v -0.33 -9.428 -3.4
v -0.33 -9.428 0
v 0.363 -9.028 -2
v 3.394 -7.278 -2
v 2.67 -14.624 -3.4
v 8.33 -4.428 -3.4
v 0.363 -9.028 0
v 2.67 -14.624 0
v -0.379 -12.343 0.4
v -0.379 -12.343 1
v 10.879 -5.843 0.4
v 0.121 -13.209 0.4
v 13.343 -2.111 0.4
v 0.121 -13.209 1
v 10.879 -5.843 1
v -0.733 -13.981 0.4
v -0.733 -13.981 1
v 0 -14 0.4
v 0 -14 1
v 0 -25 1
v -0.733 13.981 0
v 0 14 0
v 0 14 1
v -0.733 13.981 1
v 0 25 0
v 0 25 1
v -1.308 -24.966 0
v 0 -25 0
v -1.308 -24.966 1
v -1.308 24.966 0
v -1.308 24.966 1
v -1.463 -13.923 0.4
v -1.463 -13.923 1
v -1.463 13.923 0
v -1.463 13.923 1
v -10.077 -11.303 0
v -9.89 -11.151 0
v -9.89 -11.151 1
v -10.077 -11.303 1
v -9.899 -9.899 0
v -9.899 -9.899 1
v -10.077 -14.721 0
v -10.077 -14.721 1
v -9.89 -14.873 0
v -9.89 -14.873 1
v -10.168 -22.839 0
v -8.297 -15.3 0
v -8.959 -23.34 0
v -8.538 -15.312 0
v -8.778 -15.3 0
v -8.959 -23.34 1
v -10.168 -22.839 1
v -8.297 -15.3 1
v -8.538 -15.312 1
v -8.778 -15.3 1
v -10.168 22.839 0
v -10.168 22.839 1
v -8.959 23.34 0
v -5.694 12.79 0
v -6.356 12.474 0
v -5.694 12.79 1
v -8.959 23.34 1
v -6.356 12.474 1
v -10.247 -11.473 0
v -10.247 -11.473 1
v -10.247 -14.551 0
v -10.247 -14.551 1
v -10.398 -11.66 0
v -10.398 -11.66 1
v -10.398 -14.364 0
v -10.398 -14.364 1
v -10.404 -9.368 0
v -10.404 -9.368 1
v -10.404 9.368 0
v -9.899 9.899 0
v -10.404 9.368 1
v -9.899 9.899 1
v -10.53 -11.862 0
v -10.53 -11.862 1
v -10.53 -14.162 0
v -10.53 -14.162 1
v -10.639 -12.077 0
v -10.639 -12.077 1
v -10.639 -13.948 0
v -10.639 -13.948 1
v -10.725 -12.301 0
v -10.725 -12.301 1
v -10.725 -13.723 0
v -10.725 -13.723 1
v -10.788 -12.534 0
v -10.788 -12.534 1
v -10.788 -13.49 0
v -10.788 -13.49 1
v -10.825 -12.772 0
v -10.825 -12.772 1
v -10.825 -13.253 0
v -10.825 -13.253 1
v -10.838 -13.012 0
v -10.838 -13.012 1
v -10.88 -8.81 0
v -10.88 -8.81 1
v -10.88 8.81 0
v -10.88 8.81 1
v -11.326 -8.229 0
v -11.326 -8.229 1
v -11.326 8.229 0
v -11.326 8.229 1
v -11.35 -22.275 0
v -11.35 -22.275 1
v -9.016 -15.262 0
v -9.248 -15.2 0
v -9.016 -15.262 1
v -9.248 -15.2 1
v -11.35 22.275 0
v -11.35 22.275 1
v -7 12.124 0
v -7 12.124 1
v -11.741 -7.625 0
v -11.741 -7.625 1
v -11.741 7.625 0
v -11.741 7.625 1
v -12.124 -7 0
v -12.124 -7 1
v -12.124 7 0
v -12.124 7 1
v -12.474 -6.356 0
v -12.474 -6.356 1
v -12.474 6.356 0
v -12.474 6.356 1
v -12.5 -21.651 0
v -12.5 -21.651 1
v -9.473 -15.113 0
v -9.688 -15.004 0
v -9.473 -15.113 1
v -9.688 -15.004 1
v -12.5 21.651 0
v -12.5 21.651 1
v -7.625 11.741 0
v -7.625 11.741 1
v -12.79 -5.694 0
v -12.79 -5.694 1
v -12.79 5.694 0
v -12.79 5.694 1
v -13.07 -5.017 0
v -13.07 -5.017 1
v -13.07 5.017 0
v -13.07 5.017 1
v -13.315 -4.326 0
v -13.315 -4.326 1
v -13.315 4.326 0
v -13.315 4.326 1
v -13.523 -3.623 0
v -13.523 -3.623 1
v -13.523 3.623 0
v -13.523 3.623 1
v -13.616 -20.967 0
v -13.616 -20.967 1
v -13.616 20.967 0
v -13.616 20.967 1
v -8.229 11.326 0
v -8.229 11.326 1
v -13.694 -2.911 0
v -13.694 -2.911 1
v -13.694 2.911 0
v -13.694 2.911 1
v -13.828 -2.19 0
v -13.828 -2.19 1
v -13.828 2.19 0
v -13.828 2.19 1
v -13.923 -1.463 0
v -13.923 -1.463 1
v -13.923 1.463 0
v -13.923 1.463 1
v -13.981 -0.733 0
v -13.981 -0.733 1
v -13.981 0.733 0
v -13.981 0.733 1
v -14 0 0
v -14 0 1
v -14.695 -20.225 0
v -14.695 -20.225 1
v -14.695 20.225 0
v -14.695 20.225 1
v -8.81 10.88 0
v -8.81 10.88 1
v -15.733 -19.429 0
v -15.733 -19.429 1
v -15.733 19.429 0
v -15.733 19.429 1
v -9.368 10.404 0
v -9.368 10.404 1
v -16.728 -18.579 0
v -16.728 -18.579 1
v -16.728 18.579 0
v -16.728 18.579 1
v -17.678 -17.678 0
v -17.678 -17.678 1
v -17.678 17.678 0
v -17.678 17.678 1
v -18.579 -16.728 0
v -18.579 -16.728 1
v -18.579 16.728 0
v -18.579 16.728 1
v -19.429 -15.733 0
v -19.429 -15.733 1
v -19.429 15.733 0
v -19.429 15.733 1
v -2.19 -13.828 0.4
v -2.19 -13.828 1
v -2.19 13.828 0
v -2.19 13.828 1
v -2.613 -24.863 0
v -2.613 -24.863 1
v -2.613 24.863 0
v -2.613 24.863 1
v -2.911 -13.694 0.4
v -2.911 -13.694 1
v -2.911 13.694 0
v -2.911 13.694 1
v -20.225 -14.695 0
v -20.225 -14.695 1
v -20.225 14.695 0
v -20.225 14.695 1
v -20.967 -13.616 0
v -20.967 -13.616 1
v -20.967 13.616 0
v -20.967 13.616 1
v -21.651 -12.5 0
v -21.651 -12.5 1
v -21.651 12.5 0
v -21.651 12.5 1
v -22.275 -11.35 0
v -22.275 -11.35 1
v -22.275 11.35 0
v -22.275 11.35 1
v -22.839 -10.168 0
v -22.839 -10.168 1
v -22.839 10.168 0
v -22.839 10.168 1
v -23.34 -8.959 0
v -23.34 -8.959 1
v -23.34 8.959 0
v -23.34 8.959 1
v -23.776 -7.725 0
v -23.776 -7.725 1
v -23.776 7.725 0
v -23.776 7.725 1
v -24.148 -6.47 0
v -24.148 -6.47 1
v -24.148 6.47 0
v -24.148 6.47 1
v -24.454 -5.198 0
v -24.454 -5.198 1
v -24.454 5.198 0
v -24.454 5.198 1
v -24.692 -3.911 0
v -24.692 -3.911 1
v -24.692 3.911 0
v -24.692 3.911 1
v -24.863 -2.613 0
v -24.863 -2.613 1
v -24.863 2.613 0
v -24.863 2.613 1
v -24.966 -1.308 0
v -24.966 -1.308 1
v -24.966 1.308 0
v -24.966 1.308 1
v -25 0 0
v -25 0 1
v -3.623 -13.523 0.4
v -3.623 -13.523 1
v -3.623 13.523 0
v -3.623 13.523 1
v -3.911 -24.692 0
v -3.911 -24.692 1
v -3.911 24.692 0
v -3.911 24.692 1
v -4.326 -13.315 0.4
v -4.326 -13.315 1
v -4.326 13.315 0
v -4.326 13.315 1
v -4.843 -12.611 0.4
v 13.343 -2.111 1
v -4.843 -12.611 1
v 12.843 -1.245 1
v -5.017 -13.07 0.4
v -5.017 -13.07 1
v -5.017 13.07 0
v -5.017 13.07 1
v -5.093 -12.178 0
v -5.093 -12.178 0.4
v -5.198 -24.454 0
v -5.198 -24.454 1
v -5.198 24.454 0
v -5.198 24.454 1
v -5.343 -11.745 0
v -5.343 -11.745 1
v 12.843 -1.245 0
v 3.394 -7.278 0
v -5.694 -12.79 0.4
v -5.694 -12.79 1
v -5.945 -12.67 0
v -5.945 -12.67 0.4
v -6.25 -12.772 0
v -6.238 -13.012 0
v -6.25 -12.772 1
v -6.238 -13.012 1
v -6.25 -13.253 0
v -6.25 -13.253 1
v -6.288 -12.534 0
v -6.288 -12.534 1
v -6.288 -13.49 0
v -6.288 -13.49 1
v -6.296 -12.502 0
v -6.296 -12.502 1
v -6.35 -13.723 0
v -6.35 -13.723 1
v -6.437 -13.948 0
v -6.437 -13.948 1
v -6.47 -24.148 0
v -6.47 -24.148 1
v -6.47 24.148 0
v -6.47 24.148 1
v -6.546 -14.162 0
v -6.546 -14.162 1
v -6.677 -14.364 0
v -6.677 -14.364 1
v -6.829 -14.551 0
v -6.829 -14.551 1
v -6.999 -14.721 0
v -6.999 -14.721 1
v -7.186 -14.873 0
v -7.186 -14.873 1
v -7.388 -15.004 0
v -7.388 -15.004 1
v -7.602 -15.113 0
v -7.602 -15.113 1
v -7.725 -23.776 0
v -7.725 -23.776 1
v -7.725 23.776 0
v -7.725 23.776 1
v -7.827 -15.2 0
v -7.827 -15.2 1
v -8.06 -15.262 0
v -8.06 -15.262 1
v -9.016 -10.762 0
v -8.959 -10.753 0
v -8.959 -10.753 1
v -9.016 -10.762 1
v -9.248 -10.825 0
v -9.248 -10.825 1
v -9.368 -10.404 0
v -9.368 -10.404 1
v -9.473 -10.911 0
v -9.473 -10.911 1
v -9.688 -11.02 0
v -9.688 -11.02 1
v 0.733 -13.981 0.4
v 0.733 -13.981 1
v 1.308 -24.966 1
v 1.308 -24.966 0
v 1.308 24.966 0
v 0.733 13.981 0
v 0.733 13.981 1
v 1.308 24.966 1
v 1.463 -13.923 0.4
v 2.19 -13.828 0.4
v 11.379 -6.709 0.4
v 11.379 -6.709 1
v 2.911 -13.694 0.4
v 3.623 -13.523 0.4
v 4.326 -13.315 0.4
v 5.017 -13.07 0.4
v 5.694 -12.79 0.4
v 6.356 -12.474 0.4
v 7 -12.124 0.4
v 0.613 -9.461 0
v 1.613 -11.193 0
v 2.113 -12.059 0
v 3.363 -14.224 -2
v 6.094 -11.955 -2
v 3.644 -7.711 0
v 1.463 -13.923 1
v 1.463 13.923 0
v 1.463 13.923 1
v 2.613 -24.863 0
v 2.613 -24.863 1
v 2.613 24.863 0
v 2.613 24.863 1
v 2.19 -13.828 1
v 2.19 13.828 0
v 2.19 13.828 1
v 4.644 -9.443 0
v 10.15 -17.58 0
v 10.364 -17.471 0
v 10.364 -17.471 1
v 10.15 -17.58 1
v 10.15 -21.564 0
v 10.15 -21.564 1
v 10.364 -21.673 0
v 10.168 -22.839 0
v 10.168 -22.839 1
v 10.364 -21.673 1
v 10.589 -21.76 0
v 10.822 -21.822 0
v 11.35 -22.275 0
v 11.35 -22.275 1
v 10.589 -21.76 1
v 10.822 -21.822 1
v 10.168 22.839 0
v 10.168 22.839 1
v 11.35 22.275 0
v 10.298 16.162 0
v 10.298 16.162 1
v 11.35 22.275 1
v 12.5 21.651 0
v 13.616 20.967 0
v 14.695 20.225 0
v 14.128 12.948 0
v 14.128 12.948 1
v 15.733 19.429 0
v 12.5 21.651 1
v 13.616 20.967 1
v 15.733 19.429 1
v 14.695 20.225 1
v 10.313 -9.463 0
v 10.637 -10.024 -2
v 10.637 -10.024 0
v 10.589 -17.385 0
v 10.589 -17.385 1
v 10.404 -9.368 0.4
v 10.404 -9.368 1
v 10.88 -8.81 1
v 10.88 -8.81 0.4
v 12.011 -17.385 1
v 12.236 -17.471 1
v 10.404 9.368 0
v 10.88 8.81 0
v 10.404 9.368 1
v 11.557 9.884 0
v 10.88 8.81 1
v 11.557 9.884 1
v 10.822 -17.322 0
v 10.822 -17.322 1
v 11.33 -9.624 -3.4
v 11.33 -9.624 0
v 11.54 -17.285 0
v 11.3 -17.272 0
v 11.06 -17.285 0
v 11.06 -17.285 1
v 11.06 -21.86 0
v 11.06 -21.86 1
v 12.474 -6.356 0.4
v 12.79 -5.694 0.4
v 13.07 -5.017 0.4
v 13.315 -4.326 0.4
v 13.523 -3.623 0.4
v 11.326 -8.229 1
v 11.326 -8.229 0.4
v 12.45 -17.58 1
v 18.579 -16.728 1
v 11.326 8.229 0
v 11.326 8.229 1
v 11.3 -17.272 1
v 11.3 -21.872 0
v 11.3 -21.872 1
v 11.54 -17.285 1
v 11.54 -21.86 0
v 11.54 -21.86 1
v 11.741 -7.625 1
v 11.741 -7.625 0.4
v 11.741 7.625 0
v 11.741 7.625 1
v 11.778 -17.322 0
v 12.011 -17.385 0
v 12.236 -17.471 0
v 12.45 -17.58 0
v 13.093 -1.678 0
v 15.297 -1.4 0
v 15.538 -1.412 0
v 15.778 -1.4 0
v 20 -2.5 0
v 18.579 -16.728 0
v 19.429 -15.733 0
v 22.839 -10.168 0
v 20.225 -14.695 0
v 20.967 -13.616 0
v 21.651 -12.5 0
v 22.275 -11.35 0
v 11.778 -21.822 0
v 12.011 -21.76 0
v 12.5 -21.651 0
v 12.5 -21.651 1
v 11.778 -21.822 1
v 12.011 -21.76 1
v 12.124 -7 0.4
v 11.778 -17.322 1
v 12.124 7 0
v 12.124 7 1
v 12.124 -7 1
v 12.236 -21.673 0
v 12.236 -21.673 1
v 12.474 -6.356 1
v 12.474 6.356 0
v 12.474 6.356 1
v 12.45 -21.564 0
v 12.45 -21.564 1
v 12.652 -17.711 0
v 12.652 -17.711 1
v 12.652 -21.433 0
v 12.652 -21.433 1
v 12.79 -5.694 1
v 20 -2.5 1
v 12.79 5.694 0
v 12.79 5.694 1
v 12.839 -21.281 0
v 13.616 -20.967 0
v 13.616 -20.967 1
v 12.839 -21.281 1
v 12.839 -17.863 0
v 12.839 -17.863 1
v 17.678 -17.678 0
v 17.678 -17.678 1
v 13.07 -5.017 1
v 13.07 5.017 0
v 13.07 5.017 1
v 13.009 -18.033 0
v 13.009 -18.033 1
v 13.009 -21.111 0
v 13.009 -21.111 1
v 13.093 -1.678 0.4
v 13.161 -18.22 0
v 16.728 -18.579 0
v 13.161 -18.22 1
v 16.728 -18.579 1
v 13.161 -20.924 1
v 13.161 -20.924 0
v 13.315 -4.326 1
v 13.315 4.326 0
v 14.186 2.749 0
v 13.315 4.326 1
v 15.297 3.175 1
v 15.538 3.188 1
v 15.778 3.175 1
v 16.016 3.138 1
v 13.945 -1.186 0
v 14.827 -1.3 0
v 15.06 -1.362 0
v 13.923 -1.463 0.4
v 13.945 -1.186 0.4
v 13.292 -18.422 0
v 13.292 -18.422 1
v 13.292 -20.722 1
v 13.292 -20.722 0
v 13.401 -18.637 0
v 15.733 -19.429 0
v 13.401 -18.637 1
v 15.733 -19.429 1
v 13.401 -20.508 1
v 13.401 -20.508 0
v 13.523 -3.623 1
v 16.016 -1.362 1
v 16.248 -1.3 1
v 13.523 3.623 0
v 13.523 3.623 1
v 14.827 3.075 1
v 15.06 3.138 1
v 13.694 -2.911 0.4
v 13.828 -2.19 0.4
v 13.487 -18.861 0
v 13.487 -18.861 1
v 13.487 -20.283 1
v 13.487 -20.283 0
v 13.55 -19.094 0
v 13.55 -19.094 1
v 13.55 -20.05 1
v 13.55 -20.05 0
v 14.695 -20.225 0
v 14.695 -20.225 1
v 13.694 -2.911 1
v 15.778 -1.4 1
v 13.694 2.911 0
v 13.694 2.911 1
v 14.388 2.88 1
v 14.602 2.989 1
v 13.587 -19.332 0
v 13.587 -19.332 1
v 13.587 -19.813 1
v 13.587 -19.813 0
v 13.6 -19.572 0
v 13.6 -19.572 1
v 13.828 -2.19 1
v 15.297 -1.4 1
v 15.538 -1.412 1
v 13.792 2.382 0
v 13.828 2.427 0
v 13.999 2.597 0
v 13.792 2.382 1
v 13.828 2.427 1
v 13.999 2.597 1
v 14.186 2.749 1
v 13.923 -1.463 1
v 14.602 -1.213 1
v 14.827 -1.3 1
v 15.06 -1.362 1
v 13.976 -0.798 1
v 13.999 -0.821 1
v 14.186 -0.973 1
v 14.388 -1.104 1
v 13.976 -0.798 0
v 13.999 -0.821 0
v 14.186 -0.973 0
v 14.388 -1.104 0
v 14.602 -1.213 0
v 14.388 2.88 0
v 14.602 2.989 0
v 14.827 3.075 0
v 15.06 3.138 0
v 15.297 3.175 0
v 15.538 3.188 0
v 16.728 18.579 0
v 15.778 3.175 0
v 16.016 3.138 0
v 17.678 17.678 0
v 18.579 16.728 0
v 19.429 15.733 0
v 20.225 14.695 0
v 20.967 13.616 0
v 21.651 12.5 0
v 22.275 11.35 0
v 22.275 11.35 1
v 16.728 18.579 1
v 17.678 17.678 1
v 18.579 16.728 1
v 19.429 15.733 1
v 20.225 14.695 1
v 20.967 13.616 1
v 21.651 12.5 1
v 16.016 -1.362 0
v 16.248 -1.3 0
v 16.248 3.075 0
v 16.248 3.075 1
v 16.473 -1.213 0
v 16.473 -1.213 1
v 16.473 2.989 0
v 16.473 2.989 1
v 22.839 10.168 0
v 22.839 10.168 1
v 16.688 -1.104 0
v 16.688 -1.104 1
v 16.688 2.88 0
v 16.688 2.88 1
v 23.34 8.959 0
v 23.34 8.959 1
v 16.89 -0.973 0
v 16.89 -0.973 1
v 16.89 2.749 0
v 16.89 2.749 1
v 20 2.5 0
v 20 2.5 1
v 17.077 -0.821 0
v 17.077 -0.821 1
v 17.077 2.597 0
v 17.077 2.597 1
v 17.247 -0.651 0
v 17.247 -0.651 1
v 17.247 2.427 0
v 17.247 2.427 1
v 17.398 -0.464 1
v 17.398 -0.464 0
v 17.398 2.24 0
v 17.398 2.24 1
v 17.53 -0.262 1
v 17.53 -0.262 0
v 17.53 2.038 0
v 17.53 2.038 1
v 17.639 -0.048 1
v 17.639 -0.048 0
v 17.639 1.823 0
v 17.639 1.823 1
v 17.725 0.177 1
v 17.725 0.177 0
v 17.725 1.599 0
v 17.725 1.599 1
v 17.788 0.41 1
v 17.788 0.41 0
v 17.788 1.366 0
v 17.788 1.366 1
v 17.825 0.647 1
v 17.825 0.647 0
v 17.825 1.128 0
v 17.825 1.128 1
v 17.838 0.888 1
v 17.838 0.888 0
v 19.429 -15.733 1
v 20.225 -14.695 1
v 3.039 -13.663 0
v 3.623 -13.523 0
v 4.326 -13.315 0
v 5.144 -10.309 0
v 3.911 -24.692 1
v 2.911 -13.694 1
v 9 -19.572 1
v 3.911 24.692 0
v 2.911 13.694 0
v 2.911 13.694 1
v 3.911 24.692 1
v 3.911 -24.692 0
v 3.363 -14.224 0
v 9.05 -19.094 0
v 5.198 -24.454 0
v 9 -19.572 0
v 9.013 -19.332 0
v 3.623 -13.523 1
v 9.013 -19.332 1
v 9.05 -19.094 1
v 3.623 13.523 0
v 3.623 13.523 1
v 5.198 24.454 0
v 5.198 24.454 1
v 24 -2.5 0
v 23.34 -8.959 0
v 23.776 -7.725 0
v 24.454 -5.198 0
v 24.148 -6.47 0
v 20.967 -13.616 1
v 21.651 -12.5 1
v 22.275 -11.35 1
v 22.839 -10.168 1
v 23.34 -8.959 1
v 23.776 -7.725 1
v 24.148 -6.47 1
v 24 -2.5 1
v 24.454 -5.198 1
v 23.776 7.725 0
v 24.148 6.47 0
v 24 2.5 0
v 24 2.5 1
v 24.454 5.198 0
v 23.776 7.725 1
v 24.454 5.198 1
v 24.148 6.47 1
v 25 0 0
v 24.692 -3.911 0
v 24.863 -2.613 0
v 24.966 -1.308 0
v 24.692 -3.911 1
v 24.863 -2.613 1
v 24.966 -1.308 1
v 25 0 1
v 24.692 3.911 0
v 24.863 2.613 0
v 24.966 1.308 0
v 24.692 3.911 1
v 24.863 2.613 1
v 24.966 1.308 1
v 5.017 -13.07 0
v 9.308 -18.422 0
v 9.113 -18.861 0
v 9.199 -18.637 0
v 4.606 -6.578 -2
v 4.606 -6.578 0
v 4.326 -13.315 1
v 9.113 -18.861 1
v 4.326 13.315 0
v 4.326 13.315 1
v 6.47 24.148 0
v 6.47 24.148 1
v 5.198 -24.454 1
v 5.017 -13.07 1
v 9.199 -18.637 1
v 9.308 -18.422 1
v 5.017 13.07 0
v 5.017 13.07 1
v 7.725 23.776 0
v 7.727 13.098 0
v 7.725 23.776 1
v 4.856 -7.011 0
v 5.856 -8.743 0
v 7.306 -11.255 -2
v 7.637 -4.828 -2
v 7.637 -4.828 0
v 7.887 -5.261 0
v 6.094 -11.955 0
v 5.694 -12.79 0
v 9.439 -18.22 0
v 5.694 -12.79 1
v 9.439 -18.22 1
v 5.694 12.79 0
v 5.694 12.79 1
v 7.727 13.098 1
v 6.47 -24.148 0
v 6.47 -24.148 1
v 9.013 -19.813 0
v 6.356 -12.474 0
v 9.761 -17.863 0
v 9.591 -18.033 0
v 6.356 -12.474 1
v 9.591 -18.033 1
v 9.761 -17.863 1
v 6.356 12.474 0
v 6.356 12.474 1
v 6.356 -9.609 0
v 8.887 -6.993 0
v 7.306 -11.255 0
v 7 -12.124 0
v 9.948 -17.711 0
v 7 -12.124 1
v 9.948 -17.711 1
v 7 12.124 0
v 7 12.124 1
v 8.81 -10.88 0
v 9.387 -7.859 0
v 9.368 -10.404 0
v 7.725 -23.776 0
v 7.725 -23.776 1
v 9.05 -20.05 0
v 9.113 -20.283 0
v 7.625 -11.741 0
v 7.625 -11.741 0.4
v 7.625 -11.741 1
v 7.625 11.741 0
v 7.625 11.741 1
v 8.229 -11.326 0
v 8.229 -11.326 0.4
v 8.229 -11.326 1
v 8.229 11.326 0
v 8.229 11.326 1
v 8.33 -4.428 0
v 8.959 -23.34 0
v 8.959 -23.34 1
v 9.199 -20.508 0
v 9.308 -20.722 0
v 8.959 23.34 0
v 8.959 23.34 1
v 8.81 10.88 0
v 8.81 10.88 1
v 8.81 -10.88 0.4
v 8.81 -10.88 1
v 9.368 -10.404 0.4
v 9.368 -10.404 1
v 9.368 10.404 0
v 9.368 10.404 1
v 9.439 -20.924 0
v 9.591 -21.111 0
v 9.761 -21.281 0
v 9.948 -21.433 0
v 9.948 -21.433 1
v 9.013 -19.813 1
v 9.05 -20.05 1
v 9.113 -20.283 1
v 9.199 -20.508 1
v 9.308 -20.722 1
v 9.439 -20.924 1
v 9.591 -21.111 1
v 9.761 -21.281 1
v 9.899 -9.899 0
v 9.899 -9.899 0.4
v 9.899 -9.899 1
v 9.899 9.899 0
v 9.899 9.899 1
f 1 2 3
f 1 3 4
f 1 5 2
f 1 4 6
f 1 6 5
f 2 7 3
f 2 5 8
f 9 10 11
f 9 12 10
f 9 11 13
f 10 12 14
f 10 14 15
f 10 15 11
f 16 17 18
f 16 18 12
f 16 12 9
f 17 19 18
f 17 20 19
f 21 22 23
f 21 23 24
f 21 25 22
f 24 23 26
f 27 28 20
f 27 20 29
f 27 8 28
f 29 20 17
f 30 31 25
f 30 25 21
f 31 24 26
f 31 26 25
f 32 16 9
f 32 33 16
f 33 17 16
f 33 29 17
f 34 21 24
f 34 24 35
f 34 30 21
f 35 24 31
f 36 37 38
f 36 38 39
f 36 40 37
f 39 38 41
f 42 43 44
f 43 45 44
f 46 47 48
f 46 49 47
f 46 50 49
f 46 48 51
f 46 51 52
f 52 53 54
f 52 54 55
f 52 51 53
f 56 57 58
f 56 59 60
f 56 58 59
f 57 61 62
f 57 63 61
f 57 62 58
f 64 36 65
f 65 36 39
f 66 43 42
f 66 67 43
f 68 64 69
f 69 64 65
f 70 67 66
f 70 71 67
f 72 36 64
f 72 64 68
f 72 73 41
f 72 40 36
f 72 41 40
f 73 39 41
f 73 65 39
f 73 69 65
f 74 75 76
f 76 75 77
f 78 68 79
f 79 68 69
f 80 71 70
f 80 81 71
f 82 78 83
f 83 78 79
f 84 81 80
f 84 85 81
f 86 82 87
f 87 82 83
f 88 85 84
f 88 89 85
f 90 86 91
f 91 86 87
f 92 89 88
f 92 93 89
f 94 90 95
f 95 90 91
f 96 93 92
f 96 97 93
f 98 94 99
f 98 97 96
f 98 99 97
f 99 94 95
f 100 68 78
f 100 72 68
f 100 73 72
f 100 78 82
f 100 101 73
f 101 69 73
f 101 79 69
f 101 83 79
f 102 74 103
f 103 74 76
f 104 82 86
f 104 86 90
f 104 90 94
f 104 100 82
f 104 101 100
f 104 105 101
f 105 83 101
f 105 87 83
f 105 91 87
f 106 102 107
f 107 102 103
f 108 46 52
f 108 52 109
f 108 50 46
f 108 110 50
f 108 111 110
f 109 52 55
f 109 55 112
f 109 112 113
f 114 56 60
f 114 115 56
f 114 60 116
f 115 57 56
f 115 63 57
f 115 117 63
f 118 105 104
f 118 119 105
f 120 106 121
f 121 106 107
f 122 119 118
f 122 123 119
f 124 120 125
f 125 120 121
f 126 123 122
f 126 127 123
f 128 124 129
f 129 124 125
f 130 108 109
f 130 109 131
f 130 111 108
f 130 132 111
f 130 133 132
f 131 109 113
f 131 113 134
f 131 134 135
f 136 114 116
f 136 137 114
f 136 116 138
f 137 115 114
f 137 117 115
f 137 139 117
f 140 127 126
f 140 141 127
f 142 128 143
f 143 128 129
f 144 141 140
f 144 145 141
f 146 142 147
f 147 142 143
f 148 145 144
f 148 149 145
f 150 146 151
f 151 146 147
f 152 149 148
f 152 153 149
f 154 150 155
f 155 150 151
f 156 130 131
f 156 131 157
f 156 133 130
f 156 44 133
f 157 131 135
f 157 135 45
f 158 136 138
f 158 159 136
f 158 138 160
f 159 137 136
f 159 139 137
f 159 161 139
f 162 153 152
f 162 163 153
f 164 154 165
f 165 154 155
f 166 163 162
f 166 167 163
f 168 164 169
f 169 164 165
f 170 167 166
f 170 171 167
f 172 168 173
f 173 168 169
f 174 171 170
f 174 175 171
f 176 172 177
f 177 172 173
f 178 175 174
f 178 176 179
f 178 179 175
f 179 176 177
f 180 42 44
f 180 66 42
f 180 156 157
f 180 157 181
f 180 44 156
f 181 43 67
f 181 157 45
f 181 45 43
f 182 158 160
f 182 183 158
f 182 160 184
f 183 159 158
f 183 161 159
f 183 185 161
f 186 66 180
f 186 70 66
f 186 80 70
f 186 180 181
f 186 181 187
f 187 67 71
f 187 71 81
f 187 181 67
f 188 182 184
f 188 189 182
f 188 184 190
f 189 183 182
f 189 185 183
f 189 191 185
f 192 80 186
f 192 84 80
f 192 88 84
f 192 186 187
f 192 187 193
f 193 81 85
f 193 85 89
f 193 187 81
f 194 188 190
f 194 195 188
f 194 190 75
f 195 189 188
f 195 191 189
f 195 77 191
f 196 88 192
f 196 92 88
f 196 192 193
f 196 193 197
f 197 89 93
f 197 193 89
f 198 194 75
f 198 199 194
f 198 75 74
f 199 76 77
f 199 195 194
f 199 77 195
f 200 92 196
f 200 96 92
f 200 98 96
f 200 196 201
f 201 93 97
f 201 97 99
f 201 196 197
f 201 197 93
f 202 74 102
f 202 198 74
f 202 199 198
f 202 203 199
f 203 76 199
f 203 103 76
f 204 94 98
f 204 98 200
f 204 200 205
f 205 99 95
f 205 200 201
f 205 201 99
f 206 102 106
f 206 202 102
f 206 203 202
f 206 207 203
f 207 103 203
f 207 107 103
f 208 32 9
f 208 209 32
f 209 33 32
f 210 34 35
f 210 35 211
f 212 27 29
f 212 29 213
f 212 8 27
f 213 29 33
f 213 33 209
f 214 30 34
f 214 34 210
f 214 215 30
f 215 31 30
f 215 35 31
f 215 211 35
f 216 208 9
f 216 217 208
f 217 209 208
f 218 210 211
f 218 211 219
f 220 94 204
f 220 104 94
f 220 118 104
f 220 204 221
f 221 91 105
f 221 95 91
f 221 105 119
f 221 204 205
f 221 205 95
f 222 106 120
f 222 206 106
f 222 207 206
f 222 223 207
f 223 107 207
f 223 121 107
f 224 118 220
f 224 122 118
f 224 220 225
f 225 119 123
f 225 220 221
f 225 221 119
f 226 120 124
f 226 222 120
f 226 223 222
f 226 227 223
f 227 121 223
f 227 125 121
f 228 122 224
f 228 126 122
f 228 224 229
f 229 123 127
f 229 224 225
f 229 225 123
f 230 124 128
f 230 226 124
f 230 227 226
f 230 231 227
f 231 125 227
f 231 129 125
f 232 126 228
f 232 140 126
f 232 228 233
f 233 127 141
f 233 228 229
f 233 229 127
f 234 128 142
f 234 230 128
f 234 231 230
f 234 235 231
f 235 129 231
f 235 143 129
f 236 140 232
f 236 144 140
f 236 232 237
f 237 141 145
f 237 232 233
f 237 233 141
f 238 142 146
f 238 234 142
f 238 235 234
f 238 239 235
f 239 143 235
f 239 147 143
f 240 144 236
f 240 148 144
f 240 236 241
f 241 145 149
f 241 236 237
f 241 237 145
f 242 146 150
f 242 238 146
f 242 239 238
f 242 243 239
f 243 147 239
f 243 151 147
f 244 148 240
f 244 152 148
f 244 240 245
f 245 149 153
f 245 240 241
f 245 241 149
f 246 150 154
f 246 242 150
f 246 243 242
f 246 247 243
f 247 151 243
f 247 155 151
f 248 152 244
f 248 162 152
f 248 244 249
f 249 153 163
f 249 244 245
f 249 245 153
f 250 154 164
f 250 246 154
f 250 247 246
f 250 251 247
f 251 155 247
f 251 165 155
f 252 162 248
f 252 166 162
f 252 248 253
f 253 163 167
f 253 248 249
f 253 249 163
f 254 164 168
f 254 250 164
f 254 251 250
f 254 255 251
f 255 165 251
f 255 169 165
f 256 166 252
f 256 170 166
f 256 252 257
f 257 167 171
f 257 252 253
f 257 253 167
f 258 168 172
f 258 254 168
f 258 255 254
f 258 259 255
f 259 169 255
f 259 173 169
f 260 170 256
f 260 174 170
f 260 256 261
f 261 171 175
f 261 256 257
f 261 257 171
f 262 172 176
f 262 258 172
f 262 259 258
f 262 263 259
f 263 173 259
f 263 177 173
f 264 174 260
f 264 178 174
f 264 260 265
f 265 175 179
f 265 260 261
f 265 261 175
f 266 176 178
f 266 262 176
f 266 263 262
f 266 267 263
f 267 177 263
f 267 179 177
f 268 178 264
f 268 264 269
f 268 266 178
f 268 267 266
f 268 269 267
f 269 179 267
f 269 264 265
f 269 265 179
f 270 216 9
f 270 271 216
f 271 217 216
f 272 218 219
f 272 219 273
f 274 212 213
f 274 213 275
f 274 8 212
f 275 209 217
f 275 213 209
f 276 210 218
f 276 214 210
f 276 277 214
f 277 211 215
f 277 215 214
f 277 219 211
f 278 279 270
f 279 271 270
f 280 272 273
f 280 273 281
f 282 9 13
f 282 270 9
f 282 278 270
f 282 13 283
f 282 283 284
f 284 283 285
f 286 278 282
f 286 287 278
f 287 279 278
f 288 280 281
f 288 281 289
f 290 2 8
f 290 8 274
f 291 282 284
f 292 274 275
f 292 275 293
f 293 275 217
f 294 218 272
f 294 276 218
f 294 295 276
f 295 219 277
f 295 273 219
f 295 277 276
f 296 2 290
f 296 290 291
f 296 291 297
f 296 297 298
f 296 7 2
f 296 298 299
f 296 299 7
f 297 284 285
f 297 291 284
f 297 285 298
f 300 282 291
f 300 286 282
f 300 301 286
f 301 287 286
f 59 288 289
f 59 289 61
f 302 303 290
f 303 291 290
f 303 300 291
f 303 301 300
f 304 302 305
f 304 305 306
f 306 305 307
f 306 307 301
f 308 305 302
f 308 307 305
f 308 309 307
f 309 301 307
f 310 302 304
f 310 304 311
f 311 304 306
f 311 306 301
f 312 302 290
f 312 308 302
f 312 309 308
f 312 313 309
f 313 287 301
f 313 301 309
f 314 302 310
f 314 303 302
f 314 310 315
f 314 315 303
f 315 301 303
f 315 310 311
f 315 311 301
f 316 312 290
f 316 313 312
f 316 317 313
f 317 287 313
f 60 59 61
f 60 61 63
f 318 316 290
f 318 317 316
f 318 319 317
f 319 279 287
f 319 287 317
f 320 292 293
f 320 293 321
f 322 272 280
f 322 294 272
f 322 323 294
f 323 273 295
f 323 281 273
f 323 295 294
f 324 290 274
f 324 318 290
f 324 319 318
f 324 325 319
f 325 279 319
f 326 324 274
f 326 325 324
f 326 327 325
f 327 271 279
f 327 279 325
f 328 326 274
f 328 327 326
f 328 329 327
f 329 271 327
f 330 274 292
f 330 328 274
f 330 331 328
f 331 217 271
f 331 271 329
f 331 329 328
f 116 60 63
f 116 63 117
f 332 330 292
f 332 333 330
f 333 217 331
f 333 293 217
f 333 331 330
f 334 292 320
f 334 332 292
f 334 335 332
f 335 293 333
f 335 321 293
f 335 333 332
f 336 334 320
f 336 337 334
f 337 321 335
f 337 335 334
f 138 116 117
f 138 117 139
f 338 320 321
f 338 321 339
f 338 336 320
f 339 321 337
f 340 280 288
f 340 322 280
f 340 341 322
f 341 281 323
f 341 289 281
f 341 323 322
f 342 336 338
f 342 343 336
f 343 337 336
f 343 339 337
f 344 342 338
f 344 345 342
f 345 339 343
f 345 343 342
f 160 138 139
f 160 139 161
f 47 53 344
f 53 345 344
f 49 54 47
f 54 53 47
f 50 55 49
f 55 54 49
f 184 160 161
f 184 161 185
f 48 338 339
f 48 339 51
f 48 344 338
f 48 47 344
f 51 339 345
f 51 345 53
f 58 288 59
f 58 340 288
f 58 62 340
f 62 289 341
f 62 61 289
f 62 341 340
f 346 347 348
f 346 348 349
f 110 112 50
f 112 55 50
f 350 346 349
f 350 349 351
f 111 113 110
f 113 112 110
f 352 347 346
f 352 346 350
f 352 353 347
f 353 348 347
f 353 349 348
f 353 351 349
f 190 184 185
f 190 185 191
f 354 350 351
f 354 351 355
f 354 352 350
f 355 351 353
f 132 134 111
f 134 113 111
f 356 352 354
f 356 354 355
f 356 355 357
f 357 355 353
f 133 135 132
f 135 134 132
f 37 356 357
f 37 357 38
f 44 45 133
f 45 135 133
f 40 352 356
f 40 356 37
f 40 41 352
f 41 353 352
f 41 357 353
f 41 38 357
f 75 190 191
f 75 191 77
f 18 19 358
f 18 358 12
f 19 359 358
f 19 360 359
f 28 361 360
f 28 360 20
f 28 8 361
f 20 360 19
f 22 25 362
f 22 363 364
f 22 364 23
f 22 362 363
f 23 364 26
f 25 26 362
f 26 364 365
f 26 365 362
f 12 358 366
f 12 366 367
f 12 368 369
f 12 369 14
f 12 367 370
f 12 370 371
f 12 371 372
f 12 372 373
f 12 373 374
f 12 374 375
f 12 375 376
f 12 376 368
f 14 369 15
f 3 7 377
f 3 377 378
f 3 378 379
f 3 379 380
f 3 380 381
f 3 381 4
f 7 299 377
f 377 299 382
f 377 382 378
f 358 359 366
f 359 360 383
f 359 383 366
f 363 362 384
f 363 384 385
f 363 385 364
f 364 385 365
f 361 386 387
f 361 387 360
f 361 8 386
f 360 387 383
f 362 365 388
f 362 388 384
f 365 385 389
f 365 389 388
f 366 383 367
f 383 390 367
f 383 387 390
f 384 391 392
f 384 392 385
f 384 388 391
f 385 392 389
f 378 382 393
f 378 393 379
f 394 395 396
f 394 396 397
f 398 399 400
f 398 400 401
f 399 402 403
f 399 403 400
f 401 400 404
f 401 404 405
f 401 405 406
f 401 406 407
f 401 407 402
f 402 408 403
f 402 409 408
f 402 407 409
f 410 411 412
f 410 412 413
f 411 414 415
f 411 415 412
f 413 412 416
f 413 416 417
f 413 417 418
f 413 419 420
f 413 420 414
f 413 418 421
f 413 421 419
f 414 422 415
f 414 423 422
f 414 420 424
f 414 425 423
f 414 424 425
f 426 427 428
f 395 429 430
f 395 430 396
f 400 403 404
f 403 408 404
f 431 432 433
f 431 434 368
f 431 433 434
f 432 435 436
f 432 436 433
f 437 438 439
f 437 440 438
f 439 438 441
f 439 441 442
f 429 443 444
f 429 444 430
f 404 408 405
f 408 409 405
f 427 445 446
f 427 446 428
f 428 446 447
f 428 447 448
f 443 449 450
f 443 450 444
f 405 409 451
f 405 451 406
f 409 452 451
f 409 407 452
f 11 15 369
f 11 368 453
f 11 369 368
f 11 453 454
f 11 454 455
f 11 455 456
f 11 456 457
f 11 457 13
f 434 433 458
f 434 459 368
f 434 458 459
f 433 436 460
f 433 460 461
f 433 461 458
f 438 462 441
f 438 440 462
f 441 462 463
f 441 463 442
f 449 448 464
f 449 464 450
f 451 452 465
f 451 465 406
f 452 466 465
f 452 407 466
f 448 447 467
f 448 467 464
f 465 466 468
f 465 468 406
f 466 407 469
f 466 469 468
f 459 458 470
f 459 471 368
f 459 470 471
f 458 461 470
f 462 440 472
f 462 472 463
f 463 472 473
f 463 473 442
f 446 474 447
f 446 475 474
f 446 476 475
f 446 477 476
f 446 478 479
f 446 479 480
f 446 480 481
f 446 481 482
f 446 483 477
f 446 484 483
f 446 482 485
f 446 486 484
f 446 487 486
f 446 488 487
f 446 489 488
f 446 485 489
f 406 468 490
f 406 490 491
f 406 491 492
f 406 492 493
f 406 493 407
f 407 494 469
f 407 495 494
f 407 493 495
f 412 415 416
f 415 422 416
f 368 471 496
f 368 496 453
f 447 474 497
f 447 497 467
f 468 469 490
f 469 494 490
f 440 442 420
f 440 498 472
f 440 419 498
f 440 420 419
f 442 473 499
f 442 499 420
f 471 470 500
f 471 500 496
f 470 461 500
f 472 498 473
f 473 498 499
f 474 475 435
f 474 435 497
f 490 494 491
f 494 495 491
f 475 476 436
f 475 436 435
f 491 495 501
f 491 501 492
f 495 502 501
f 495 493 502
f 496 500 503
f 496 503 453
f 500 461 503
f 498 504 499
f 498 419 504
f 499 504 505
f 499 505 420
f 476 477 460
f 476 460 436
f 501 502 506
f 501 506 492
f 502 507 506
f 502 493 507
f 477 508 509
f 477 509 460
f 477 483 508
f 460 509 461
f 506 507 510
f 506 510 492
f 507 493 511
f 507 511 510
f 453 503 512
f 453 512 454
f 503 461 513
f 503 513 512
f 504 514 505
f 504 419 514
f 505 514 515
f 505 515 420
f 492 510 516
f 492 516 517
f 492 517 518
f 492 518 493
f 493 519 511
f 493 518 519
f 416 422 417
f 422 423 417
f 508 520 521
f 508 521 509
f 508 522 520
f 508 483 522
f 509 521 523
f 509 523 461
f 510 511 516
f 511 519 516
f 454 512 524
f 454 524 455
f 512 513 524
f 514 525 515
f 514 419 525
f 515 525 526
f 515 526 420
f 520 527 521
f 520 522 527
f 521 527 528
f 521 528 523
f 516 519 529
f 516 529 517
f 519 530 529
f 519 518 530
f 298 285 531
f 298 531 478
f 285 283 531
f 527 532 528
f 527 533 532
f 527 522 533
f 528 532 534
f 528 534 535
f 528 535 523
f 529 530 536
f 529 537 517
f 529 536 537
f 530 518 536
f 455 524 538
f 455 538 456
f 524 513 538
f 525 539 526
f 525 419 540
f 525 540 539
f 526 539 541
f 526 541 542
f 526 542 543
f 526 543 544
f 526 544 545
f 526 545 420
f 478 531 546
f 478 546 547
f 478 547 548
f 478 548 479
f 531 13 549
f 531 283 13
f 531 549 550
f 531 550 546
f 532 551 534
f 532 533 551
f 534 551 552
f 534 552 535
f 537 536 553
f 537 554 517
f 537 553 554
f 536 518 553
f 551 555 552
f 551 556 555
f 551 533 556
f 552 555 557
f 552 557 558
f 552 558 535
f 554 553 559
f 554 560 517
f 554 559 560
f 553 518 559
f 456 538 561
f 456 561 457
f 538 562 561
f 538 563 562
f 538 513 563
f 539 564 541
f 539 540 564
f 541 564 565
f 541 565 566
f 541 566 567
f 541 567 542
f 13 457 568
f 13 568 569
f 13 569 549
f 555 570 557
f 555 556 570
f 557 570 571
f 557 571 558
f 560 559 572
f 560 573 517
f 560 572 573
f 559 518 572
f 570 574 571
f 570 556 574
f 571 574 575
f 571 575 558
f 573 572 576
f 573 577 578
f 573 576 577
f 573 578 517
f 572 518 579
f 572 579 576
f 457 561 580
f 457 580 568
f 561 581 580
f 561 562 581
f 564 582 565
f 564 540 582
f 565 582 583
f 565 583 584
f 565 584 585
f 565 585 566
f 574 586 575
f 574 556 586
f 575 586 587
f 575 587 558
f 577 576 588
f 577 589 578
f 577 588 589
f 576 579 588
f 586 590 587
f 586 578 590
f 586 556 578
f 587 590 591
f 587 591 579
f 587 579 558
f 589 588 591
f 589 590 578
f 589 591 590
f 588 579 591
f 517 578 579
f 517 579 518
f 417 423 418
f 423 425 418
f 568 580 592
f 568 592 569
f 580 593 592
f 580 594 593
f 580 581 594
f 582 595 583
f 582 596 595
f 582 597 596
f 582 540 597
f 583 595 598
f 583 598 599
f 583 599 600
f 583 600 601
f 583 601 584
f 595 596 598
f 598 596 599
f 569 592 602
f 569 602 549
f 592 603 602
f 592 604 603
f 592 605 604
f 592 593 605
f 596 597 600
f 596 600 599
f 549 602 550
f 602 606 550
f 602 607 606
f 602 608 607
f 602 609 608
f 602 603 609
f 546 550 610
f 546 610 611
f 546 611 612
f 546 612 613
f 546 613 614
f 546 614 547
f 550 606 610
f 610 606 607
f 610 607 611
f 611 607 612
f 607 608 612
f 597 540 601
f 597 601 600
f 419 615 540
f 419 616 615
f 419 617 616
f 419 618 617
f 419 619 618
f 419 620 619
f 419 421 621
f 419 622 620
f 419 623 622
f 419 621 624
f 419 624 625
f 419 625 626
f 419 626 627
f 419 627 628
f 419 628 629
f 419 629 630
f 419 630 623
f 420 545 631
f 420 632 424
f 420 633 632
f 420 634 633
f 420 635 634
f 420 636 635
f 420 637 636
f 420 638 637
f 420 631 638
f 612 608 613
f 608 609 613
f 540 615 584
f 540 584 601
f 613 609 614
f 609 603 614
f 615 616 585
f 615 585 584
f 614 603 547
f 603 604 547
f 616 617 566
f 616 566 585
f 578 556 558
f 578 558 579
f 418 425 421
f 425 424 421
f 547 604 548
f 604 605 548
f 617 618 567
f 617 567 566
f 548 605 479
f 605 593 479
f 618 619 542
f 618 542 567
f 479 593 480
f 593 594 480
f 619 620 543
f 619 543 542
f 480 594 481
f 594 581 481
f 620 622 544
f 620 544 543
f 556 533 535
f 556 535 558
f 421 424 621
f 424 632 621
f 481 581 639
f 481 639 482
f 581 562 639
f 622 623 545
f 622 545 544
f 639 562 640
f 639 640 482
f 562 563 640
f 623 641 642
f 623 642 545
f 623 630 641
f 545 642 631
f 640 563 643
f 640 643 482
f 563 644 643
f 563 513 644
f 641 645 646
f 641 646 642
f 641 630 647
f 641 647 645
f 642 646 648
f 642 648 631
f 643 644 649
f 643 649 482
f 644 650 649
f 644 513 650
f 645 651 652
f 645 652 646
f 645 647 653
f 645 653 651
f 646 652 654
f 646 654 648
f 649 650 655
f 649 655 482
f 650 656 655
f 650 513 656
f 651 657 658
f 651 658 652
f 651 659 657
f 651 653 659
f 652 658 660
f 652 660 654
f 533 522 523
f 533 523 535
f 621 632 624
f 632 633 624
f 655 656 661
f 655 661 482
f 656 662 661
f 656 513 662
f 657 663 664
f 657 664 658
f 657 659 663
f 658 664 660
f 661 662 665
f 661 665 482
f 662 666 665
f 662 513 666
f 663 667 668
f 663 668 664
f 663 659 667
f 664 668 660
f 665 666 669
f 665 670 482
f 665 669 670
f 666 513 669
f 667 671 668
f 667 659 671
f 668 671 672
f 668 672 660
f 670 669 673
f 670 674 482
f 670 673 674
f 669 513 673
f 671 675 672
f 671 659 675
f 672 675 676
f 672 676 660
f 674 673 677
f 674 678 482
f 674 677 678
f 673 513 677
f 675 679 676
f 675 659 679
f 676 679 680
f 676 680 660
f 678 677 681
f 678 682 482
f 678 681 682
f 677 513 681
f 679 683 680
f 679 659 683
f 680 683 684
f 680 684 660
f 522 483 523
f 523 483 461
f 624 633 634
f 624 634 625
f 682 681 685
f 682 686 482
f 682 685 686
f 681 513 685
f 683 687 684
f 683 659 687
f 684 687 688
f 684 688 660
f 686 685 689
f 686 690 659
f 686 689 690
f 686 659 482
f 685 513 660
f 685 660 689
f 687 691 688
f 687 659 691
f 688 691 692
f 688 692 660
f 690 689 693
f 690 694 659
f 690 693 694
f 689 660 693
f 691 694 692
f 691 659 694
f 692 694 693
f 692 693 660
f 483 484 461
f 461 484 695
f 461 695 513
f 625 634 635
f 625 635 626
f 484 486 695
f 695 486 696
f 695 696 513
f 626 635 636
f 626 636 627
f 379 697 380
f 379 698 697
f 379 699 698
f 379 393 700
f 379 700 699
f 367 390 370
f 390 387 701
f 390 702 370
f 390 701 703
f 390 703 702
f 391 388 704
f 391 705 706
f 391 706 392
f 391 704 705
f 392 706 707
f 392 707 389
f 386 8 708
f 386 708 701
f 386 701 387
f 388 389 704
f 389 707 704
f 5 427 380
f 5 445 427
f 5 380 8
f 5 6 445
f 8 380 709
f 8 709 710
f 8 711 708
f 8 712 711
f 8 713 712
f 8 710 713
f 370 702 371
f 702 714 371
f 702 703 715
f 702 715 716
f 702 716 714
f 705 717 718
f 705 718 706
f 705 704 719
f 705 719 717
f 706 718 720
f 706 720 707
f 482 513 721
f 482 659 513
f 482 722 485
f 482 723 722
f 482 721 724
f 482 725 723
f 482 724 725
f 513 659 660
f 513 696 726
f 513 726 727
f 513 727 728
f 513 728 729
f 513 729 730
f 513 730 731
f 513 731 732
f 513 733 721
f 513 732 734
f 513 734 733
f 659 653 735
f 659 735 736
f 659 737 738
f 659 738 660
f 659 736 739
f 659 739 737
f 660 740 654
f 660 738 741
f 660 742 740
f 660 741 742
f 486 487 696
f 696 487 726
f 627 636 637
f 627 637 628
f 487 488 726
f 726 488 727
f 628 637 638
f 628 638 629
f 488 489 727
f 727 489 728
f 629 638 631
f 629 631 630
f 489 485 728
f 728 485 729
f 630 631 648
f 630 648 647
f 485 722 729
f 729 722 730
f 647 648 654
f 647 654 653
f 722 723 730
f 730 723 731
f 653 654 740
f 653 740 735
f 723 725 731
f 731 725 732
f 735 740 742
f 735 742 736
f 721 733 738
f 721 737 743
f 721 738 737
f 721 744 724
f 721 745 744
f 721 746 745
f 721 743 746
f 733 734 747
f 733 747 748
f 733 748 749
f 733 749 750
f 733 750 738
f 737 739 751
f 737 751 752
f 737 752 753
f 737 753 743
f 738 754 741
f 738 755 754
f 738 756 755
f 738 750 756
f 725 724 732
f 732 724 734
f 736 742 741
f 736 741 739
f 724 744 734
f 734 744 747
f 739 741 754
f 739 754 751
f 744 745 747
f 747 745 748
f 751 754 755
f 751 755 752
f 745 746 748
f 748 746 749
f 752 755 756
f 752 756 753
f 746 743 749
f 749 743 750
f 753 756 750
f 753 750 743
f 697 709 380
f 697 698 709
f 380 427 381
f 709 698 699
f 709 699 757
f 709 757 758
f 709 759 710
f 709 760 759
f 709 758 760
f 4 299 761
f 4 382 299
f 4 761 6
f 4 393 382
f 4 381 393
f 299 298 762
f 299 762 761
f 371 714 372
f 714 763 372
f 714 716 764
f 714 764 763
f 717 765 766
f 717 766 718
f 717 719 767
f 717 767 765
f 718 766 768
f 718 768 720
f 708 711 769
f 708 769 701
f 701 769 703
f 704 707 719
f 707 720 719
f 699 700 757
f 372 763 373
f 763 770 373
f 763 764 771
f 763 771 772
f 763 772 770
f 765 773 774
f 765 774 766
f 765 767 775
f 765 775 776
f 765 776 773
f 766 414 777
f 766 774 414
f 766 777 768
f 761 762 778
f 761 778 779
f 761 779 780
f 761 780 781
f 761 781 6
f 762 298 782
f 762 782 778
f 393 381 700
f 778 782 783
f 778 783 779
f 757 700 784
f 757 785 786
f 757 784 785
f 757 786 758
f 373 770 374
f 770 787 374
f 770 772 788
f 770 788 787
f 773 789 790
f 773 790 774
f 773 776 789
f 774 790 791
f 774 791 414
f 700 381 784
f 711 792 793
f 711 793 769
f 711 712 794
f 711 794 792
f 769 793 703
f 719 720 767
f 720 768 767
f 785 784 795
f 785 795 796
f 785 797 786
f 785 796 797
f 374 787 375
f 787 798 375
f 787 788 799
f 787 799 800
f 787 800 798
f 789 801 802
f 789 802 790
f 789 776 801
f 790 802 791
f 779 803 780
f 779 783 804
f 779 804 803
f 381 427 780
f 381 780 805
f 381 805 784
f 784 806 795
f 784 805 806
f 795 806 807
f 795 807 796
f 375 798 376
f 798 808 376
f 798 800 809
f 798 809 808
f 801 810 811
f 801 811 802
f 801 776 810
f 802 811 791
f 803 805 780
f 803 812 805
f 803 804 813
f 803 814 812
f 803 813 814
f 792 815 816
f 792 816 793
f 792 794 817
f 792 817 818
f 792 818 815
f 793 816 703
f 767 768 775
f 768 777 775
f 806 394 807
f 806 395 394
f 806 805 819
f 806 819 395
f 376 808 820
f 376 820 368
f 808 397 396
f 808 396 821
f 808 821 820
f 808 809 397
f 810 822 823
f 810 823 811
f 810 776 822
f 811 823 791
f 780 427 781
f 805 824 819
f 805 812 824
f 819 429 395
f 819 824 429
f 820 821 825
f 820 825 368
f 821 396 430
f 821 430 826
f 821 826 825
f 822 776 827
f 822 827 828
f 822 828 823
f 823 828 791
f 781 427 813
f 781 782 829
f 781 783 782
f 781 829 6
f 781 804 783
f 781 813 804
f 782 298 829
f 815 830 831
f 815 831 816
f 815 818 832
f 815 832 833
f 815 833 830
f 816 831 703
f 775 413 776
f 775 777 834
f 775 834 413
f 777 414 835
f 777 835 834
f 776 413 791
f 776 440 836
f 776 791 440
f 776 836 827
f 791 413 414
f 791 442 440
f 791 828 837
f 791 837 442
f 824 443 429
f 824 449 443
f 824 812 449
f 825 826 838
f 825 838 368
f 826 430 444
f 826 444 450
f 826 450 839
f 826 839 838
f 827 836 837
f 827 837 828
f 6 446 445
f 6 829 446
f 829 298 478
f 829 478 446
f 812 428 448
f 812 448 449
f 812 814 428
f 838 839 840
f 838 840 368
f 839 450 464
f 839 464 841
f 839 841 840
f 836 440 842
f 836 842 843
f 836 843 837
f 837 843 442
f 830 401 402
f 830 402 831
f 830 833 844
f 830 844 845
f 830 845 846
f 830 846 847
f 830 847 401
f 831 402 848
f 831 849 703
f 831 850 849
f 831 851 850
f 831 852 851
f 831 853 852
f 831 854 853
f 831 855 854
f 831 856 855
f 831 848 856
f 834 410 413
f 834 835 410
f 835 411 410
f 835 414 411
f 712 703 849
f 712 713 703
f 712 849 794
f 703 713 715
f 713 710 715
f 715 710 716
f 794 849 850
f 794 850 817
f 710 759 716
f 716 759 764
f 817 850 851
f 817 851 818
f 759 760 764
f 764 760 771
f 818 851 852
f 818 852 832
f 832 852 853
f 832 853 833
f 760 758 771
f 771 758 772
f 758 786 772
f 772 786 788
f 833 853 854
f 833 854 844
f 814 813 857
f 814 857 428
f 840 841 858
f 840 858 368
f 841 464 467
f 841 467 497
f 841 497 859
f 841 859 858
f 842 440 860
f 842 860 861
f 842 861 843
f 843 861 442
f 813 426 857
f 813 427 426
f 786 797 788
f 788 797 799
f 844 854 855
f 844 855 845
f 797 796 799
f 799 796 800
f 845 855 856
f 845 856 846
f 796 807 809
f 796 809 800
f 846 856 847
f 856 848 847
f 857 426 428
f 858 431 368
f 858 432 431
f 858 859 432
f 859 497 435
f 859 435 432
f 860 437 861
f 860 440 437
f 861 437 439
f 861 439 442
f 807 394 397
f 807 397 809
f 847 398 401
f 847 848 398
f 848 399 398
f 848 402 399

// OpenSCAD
module 888_4046()
{
    outer_d=50;
    inner_d=28;
    h=1.0;
    
    rpm_outer_dst=24;
    rpm_inner_dst=20;
    rpm_d=rpm_outer_dst-rpm_inner_dst;
    rpm_l=5;
    
    pos_outer_dst=19;
    pos_inner_dst=15;
    pos_d=pos_outer_dst-pos_inner_dst;
    pos_l=5;    
    pos_angle_to_rpm_angle=50;
    
    pcb_screw1_to_rpm_angle=60;
    
    pcb_screw1_x=22.6;
    pcb_screw23_x= 7.0;
    pcb_screw23_y = 13.9;
    pcb_screw_d=4.6;    
    
    pcb_h=2.0;
    key_b=1.4;
    key_t=0.4;
    key_h=pcb_h+key_b+key_t;
    key_l=10;
    key_dst=8;
    key_d=inner_d/2-key_dst;
    key_k=1.4;//šírka škvírky
    key_r_dd=1.8;//rozšíření škvírky vzdálenost děr
    key_r_d=12.4;//rozšíření škvírky vzdálenos od osy
    ker_r=2; //rozšíření škvírky polomer vrtání
    
    

    //mezikruží
    difference()
    {
        cylinder(d=outer_d,h=h,$fn=120);                                
        
        //vnitřní díra
        translate([0,0,-0.01])
        cylinder(d=inner_d,h=h+0.02,$fn=120);
        
        //rpm
        translate([rpm_d/2+rpm_inner_dst,0,h/2])
            cube([rpm_d,rpm_l,h+0.02],center=true);
        
        //pos
        rotate([0,0,pos_angle_to_rpm_angle])     
        translate([pos_d/2+pos_inner_dst,0,h/2])
            cube([pos_d,pos_l,h+0.02],center=true);
            
       //pcb screw
       rotate([0,0,-pcb_screw1_to_rpm_angle])
       translate([0,0,-0.01])
       {
           translate([pcb_screw1_x,0,0])
                cylinder(d=pcb_screw_d,h=h+0.02, $fn=60);

            translate([pcb_screw23_x,-pcb_screw23_y,0])
                cylinder(d=pcb_screw_d,h=h+0.02, $fn=60);
                
            translate([pcb_screw23_x,pcb_screw23_y,0])
                cylinder(d=pcb_screw_d,h=h+0.02, $fn=60);
        }
  
  
    }
    
    //klíč
    rotate([0,0,-pcb_screw1_to_rpm_angle])
    difference()
    {
        union()
        {
            translate([key_dst,-key_l/2,-(key_h-key_t)])        
                cube([key_d,key_l,key_h]);
        
            //rozširení spojení
            ll=2.35*key_l;
            translate([key_dst,-ll/2,0])        
                cube([key_d,ll,key_t]);
        }
        
        
        
        difference()
        {        
            //pcb
            pcb_l=key_l/2-key_k/2-0.8;
            for(i=[-1,1])
                translate([key_dst+key_d/2,i*(pcb_l/2+key_k/2),-pcb_h/2])
                   cube([key_d+0.02,pcb_l,pcb_h],center=true);
            
            //rozšíření škvírkyv pcb
           /* hull()
            {
                for(i=[-1,1])
                    translate([key_r_d,i*key_r_dd/2,-pcb_h/3])
                        cylinder(h=pcb_h/3,d=ker_r,$fn=120);
                
            }  */                      
        }
        
        //zaříznutí 
        translate([key_r_d+5/2+ker_r/2,0,-pcb_h/2])
           cube([5,key_k+0.02,pcb_h],center=true);
                
               
    }
    
    //podpera pro tisk
    rotate([0,0,-pcb_screw1_to_rpm_angle])
    {
        translate([key_dst,0,h/2])
            cube([1,2.1*key_l,h],center=true);
   
        translate([key_dst+key_d/2,0,h/2])
            cube([1,1.3*key_l,h],center=true);
    }
    
}


888_4046();
